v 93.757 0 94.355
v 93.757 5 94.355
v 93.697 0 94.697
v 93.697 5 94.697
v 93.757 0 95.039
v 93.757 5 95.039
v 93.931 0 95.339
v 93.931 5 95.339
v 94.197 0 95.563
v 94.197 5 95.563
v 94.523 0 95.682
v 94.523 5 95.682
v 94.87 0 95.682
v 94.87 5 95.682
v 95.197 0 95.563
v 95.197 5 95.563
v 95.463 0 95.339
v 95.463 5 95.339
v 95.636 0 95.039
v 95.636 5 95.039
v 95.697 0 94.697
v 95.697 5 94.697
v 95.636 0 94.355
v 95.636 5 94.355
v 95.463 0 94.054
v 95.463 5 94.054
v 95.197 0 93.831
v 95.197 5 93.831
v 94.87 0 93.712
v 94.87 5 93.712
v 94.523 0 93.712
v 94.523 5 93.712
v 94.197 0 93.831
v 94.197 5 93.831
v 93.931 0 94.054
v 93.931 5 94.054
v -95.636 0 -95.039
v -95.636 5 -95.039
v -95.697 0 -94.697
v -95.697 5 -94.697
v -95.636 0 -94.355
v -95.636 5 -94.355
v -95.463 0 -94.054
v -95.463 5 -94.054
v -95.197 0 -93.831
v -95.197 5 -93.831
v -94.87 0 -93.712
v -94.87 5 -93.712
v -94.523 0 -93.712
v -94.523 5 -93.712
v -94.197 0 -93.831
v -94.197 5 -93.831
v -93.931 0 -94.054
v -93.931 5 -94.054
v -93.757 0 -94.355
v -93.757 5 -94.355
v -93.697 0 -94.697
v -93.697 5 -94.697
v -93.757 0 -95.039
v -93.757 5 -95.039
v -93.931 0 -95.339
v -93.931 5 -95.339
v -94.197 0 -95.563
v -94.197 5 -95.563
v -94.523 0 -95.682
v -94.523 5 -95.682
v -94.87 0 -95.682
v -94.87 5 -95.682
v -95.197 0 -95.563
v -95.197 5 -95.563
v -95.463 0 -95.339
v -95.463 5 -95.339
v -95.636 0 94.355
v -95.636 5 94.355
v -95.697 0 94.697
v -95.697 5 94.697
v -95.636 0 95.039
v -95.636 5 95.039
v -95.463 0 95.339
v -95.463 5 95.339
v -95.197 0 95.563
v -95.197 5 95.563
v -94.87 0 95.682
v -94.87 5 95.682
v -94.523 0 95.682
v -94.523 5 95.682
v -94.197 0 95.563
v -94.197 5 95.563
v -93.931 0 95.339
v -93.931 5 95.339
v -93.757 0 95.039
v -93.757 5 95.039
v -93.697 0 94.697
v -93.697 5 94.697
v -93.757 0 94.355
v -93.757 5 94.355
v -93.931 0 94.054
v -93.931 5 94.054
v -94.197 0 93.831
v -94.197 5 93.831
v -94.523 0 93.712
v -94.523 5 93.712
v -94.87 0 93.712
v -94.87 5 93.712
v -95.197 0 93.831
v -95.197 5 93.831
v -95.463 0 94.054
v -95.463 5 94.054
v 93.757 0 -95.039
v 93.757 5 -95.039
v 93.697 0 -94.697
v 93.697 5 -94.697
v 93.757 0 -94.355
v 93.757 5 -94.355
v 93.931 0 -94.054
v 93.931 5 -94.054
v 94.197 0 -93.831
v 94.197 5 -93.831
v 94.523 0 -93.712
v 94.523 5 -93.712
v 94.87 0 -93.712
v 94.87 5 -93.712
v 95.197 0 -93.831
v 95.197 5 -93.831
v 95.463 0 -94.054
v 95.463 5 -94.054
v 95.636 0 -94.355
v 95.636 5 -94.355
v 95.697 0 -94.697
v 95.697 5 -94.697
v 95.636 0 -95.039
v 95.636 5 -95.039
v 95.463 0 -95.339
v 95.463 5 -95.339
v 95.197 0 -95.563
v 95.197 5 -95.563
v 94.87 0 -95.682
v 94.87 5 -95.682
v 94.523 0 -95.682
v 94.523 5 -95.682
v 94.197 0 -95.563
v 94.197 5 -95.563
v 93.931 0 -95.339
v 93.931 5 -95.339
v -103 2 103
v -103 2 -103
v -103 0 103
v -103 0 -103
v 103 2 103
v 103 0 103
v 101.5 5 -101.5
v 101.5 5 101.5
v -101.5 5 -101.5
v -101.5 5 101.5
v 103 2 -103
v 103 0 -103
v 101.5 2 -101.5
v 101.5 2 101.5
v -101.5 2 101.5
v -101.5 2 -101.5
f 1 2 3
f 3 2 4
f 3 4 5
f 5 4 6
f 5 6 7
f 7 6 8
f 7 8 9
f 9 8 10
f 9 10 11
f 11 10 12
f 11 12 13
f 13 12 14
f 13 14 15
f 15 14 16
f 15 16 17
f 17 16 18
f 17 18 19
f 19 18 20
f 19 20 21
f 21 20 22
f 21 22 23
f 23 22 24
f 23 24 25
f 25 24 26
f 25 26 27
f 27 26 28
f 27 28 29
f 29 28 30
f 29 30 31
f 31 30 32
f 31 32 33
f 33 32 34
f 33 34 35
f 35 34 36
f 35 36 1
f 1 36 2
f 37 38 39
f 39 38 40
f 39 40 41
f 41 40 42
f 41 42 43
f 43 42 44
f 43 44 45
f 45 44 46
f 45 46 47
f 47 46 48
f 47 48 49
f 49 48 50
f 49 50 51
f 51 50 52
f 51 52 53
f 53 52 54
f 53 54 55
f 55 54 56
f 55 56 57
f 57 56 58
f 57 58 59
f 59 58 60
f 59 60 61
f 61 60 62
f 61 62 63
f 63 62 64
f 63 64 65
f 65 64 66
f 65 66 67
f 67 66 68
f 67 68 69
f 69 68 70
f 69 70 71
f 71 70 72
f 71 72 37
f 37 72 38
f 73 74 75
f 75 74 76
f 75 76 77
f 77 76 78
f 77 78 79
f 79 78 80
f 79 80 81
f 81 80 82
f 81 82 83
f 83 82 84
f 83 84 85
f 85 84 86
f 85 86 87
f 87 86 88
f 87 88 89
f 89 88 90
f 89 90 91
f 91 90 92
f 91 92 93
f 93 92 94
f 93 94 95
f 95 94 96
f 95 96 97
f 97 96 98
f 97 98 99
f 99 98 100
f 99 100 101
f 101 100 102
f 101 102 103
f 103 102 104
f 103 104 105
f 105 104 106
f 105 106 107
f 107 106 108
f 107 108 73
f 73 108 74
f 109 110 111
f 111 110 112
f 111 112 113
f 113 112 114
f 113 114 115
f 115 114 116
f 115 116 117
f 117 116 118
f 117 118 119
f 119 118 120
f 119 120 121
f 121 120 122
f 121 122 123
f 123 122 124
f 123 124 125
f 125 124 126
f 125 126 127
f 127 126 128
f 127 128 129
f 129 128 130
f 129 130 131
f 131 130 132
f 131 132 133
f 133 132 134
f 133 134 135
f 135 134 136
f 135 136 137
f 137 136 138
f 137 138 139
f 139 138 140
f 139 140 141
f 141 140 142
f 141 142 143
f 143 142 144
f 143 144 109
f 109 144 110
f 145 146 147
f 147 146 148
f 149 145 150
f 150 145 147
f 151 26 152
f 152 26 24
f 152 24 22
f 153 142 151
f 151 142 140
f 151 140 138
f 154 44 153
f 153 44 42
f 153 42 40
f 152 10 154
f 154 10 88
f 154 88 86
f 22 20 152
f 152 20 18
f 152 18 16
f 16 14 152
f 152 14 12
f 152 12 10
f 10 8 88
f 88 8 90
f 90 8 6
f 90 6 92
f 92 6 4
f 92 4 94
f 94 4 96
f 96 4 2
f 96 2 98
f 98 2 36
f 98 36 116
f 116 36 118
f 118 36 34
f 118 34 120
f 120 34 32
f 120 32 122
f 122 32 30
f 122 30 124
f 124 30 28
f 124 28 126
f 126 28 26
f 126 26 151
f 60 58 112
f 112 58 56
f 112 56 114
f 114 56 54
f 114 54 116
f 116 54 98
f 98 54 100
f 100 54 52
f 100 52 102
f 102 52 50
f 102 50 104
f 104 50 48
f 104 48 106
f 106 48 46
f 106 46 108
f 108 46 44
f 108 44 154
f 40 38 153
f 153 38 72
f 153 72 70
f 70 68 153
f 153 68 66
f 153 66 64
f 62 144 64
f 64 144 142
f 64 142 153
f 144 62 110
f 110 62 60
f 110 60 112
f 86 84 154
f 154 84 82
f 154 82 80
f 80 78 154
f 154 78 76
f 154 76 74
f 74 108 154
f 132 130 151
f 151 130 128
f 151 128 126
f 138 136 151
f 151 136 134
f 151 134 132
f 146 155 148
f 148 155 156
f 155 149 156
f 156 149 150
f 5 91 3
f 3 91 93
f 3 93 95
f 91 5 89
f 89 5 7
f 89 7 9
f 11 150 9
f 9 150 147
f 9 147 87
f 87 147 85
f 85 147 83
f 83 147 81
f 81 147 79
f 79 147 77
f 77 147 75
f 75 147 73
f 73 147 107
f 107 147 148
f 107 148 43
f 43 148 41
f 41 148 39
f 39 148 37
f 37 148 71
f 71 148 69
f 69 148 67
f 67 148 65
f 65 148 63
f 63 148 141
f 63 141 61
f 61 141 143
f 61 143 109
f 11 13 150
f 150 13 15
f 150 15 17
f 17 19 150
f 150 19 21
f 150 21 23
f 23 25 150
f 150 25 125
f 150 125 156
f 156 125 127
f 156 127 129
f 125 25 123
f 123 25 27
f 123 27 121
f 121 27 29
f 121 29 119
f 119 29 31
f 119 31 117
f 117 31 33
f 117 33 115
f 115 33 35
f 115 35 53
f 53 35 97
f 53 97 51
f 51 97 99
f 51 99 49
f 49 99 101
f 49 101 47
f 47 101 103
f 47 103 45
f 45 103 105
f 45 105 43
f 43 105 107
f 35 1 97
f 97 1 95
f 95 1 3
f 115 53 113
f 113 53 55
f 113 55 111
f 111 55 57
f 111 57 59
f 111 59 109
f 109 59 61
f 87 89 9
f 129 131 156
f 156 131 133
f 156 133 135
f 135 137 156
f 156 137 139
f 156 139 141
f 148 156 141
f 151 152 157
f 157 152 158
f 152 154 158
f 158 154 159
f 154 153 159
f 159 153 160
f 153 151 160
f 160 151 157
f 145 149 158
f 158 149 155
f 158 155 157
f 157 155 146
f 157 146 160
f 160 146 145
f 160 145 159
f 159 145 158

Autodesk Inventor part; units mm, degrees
ref_plane "YZ Plane" through (0, 0, 0) normal (1, 0, 0) x (0, 1, 0)
ref_plane "XZ Plane" through (0, 0, 0) normal (0, 1, 0) x (-1, 0, 0)
ref_plane "XY Plane" through (0, 0, 0) normal (0, 0, 1) x (1, 0, 0)
sketch "Boceto1" plane through (0, 0, 0) normal (0, 1, 0) x (-1, 0, 0)
  line L0 (-103, 103) -> (103, 103)
  line L1 (103, 103) -> (103, -103)
  line L2 (103, -103) -> (-103, -103)
  line L3 (-103, -103) -> (-103, 103)
  line L4 (-103, 103) -> (103, -103) construction
  line L5 (103, 103) -> (-103, -103) construction
  point P0 (0, 0)
  dimension "d0" = 206
  dimension "d1" = 206
extrude "Extrusión1" add sketch "Boceto1" along normal blind 5
sketch "Boceto3" plane through (0, 5, 0) normal (0, 1, 0) x (1, 0, 0)
  line L0 (85, 100) -> (103, 100)
  line L1 (103, -103) -> (103, 103) projected
  line L2 (100, -85) -> (100, 85) projected
  line L3 (100, 85) -> (100, 100)
  line L4 (100, 100) -> (116.202, 100) construction
  arc A0 (85, 100) -> (100, 85) centre (100, 100) ccw projected
  line L5 (89.3934, 89.3934) -> (89.3934, 100)
  line L6 (89.3934, 89.3934) -> (100, 89.3934)
  line L7 (89.3934, 100) -> (100, 89.3934)
  line L8 (89.3934, 89.3934) -> (100, 100)
  circle A1 centre (94.6967, 94.6967) radius 1
  circle A2 centre (-94.6967, 94.6967) radius 1
  circle A3 centre (-94.6967, -94.6967) radius 1
  circle A4 centre (94.6967, -94.6967) radius 1
  point P0 (0, 0)
  dimension "d12" = 2
  dimension "d15" = 360
hole "Agujero1" at (-94.6967, 5, -94.6967) at (-94.6967, 5, 94.6967) at (94.6967, 5, 94.6967) at (94.6967, 5, -94.6967) direction (0, -1, 0) diameter 2 end through all
sketch "Boceto4" plane through (0, 5, 0) normal (0, 1, 0) x (1, 0, 0)
  line L0 (-101.5, 101.5) -> (101.5, 101.5)
  line L1 (101.5, 101.5) -> (101.5, -101.5)
  line L2 (101.5, -101.5) -> (-101.5, -101.5)
  line L3 (-101.5, -101.5) -> (-101.5, 101.5)
  line L4 (-101.5, 101.5) -> (101.5, -101.5) construction
  line L5 (101.5, 101.5) -> (-101.5, -101.5) construction
  line L6 (-103, -103) -> (103, -103)
  line L7 (103, -103) -> (103, 103)
  line L8 (103, 103) -> (-103, 103)
  line L9 (-103, 103) -> (-103, -103)
  point P0 (0, 0)
  dimension "d24" = 203
  dimension "d25" = 203
  dimension "d26" = 206
  dimension "d27" = 206
extrude "Extrusión3" cut sketch "Boceto4" against normal blind 3
sketch "Boceto5" plane through (0, 0, 0) normal (0, -1, 0) x (1, 0, 0)
  point P0 (0, 0)
sketch "Boceto6" plane through (0, 0, 0) normal (0, -1, 0) x (1, 0, 0)
  point P0 (0, 0)
properties part number "tapa_cuboLed"
